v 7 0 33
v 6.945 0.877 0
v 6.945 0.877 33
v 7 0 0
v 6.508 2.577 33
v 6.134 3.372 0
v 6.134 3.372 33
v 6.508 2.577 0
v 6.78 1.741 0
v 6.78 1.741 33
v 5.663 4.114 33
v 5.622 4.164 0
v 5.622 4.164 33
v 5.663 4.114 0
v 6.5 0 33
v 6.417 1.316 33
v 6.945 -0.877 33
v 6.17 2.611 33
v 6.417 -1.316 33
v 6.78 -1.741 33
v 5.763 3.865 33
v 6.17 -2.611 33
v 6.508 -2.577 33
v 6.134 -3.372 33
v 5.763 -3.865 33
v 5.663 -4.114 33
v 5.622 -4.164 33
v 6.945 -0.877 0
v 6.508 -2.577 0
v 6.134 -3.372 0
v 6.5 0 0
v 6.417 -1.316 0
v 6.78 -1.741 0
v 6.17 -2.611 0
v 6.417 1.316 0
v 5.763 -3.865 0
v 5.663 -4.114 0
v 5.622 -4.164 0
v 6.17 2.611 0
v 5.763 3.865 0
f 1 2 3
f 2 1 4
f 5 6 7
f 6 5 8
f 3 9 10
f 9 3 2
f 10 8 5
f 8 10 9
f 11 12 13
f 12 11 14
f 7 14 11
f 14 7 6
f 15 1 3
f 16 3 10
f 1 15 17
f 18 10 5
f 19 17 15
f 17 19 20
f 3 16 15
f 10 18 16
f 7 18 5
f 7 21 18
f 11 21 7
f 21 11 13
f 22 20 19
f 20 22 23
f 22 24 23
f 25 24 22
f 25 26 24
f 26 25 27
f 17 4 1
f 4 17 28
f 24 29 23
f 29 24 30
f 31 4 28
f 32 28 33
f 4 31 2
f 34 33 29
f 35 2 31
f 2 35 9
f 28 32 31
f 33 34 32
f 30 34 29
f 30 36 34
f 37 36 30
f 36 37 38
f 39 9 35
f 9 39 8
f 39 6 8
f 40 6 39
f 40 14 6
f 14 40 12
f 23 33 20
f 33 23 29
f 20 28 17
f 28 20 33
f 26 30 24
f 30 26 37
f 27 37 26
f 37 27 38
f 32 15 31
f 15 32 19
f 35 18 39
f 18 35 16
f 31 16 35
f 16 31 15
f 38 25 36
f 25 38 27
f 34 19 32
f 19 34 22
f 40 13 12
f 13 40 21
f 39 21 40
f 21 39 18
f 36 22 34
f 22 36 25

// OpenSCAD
$fn = 50;


difference() {
	union() {
		cylinder(h = 33, r = 7.0000000000);
		translate(v = [-7.0000000000, 0, 0]) {
			cylinder(h = 33, r = 7.0000000000);
		}
	}
	union() {
		cylinder(h = 33, r = 3.2500000000);
		cylinder(h = 33, r = 1.8000000000);
		cylinder(h = 33, r = 1.8000000000);
		cylinder(h = 33, r = 1.8000000000);
		translate(v = [-11.5000000000, 0, 0]) {
			hull() {
				translate(v = [-3.7500000000, 0.0000000000, 0]) {
					cylinder(h = 33, r = 7.5000000000);
				}
				translate(v = [3.7500000000, 0.0000000000, 0]) {
					cylinder(h = 33, r = 7.5000000000);
				}
				translate(v = [-3.7500000000, -0.0000000000, 0]) {
					cylinder(h = 33, r = 7.5000000000);
				}
				translate(v = [3.7500000000, -0.0000000000, 0]) {
					cylinder(h = 33, r = 7.5000000000);
				}
			}
		}
		translate(v = [-4.0000000000, 0, 0.0000000000]) {
			cylinder(h = 33, r = 10.5000000000);
		}
	}
}
